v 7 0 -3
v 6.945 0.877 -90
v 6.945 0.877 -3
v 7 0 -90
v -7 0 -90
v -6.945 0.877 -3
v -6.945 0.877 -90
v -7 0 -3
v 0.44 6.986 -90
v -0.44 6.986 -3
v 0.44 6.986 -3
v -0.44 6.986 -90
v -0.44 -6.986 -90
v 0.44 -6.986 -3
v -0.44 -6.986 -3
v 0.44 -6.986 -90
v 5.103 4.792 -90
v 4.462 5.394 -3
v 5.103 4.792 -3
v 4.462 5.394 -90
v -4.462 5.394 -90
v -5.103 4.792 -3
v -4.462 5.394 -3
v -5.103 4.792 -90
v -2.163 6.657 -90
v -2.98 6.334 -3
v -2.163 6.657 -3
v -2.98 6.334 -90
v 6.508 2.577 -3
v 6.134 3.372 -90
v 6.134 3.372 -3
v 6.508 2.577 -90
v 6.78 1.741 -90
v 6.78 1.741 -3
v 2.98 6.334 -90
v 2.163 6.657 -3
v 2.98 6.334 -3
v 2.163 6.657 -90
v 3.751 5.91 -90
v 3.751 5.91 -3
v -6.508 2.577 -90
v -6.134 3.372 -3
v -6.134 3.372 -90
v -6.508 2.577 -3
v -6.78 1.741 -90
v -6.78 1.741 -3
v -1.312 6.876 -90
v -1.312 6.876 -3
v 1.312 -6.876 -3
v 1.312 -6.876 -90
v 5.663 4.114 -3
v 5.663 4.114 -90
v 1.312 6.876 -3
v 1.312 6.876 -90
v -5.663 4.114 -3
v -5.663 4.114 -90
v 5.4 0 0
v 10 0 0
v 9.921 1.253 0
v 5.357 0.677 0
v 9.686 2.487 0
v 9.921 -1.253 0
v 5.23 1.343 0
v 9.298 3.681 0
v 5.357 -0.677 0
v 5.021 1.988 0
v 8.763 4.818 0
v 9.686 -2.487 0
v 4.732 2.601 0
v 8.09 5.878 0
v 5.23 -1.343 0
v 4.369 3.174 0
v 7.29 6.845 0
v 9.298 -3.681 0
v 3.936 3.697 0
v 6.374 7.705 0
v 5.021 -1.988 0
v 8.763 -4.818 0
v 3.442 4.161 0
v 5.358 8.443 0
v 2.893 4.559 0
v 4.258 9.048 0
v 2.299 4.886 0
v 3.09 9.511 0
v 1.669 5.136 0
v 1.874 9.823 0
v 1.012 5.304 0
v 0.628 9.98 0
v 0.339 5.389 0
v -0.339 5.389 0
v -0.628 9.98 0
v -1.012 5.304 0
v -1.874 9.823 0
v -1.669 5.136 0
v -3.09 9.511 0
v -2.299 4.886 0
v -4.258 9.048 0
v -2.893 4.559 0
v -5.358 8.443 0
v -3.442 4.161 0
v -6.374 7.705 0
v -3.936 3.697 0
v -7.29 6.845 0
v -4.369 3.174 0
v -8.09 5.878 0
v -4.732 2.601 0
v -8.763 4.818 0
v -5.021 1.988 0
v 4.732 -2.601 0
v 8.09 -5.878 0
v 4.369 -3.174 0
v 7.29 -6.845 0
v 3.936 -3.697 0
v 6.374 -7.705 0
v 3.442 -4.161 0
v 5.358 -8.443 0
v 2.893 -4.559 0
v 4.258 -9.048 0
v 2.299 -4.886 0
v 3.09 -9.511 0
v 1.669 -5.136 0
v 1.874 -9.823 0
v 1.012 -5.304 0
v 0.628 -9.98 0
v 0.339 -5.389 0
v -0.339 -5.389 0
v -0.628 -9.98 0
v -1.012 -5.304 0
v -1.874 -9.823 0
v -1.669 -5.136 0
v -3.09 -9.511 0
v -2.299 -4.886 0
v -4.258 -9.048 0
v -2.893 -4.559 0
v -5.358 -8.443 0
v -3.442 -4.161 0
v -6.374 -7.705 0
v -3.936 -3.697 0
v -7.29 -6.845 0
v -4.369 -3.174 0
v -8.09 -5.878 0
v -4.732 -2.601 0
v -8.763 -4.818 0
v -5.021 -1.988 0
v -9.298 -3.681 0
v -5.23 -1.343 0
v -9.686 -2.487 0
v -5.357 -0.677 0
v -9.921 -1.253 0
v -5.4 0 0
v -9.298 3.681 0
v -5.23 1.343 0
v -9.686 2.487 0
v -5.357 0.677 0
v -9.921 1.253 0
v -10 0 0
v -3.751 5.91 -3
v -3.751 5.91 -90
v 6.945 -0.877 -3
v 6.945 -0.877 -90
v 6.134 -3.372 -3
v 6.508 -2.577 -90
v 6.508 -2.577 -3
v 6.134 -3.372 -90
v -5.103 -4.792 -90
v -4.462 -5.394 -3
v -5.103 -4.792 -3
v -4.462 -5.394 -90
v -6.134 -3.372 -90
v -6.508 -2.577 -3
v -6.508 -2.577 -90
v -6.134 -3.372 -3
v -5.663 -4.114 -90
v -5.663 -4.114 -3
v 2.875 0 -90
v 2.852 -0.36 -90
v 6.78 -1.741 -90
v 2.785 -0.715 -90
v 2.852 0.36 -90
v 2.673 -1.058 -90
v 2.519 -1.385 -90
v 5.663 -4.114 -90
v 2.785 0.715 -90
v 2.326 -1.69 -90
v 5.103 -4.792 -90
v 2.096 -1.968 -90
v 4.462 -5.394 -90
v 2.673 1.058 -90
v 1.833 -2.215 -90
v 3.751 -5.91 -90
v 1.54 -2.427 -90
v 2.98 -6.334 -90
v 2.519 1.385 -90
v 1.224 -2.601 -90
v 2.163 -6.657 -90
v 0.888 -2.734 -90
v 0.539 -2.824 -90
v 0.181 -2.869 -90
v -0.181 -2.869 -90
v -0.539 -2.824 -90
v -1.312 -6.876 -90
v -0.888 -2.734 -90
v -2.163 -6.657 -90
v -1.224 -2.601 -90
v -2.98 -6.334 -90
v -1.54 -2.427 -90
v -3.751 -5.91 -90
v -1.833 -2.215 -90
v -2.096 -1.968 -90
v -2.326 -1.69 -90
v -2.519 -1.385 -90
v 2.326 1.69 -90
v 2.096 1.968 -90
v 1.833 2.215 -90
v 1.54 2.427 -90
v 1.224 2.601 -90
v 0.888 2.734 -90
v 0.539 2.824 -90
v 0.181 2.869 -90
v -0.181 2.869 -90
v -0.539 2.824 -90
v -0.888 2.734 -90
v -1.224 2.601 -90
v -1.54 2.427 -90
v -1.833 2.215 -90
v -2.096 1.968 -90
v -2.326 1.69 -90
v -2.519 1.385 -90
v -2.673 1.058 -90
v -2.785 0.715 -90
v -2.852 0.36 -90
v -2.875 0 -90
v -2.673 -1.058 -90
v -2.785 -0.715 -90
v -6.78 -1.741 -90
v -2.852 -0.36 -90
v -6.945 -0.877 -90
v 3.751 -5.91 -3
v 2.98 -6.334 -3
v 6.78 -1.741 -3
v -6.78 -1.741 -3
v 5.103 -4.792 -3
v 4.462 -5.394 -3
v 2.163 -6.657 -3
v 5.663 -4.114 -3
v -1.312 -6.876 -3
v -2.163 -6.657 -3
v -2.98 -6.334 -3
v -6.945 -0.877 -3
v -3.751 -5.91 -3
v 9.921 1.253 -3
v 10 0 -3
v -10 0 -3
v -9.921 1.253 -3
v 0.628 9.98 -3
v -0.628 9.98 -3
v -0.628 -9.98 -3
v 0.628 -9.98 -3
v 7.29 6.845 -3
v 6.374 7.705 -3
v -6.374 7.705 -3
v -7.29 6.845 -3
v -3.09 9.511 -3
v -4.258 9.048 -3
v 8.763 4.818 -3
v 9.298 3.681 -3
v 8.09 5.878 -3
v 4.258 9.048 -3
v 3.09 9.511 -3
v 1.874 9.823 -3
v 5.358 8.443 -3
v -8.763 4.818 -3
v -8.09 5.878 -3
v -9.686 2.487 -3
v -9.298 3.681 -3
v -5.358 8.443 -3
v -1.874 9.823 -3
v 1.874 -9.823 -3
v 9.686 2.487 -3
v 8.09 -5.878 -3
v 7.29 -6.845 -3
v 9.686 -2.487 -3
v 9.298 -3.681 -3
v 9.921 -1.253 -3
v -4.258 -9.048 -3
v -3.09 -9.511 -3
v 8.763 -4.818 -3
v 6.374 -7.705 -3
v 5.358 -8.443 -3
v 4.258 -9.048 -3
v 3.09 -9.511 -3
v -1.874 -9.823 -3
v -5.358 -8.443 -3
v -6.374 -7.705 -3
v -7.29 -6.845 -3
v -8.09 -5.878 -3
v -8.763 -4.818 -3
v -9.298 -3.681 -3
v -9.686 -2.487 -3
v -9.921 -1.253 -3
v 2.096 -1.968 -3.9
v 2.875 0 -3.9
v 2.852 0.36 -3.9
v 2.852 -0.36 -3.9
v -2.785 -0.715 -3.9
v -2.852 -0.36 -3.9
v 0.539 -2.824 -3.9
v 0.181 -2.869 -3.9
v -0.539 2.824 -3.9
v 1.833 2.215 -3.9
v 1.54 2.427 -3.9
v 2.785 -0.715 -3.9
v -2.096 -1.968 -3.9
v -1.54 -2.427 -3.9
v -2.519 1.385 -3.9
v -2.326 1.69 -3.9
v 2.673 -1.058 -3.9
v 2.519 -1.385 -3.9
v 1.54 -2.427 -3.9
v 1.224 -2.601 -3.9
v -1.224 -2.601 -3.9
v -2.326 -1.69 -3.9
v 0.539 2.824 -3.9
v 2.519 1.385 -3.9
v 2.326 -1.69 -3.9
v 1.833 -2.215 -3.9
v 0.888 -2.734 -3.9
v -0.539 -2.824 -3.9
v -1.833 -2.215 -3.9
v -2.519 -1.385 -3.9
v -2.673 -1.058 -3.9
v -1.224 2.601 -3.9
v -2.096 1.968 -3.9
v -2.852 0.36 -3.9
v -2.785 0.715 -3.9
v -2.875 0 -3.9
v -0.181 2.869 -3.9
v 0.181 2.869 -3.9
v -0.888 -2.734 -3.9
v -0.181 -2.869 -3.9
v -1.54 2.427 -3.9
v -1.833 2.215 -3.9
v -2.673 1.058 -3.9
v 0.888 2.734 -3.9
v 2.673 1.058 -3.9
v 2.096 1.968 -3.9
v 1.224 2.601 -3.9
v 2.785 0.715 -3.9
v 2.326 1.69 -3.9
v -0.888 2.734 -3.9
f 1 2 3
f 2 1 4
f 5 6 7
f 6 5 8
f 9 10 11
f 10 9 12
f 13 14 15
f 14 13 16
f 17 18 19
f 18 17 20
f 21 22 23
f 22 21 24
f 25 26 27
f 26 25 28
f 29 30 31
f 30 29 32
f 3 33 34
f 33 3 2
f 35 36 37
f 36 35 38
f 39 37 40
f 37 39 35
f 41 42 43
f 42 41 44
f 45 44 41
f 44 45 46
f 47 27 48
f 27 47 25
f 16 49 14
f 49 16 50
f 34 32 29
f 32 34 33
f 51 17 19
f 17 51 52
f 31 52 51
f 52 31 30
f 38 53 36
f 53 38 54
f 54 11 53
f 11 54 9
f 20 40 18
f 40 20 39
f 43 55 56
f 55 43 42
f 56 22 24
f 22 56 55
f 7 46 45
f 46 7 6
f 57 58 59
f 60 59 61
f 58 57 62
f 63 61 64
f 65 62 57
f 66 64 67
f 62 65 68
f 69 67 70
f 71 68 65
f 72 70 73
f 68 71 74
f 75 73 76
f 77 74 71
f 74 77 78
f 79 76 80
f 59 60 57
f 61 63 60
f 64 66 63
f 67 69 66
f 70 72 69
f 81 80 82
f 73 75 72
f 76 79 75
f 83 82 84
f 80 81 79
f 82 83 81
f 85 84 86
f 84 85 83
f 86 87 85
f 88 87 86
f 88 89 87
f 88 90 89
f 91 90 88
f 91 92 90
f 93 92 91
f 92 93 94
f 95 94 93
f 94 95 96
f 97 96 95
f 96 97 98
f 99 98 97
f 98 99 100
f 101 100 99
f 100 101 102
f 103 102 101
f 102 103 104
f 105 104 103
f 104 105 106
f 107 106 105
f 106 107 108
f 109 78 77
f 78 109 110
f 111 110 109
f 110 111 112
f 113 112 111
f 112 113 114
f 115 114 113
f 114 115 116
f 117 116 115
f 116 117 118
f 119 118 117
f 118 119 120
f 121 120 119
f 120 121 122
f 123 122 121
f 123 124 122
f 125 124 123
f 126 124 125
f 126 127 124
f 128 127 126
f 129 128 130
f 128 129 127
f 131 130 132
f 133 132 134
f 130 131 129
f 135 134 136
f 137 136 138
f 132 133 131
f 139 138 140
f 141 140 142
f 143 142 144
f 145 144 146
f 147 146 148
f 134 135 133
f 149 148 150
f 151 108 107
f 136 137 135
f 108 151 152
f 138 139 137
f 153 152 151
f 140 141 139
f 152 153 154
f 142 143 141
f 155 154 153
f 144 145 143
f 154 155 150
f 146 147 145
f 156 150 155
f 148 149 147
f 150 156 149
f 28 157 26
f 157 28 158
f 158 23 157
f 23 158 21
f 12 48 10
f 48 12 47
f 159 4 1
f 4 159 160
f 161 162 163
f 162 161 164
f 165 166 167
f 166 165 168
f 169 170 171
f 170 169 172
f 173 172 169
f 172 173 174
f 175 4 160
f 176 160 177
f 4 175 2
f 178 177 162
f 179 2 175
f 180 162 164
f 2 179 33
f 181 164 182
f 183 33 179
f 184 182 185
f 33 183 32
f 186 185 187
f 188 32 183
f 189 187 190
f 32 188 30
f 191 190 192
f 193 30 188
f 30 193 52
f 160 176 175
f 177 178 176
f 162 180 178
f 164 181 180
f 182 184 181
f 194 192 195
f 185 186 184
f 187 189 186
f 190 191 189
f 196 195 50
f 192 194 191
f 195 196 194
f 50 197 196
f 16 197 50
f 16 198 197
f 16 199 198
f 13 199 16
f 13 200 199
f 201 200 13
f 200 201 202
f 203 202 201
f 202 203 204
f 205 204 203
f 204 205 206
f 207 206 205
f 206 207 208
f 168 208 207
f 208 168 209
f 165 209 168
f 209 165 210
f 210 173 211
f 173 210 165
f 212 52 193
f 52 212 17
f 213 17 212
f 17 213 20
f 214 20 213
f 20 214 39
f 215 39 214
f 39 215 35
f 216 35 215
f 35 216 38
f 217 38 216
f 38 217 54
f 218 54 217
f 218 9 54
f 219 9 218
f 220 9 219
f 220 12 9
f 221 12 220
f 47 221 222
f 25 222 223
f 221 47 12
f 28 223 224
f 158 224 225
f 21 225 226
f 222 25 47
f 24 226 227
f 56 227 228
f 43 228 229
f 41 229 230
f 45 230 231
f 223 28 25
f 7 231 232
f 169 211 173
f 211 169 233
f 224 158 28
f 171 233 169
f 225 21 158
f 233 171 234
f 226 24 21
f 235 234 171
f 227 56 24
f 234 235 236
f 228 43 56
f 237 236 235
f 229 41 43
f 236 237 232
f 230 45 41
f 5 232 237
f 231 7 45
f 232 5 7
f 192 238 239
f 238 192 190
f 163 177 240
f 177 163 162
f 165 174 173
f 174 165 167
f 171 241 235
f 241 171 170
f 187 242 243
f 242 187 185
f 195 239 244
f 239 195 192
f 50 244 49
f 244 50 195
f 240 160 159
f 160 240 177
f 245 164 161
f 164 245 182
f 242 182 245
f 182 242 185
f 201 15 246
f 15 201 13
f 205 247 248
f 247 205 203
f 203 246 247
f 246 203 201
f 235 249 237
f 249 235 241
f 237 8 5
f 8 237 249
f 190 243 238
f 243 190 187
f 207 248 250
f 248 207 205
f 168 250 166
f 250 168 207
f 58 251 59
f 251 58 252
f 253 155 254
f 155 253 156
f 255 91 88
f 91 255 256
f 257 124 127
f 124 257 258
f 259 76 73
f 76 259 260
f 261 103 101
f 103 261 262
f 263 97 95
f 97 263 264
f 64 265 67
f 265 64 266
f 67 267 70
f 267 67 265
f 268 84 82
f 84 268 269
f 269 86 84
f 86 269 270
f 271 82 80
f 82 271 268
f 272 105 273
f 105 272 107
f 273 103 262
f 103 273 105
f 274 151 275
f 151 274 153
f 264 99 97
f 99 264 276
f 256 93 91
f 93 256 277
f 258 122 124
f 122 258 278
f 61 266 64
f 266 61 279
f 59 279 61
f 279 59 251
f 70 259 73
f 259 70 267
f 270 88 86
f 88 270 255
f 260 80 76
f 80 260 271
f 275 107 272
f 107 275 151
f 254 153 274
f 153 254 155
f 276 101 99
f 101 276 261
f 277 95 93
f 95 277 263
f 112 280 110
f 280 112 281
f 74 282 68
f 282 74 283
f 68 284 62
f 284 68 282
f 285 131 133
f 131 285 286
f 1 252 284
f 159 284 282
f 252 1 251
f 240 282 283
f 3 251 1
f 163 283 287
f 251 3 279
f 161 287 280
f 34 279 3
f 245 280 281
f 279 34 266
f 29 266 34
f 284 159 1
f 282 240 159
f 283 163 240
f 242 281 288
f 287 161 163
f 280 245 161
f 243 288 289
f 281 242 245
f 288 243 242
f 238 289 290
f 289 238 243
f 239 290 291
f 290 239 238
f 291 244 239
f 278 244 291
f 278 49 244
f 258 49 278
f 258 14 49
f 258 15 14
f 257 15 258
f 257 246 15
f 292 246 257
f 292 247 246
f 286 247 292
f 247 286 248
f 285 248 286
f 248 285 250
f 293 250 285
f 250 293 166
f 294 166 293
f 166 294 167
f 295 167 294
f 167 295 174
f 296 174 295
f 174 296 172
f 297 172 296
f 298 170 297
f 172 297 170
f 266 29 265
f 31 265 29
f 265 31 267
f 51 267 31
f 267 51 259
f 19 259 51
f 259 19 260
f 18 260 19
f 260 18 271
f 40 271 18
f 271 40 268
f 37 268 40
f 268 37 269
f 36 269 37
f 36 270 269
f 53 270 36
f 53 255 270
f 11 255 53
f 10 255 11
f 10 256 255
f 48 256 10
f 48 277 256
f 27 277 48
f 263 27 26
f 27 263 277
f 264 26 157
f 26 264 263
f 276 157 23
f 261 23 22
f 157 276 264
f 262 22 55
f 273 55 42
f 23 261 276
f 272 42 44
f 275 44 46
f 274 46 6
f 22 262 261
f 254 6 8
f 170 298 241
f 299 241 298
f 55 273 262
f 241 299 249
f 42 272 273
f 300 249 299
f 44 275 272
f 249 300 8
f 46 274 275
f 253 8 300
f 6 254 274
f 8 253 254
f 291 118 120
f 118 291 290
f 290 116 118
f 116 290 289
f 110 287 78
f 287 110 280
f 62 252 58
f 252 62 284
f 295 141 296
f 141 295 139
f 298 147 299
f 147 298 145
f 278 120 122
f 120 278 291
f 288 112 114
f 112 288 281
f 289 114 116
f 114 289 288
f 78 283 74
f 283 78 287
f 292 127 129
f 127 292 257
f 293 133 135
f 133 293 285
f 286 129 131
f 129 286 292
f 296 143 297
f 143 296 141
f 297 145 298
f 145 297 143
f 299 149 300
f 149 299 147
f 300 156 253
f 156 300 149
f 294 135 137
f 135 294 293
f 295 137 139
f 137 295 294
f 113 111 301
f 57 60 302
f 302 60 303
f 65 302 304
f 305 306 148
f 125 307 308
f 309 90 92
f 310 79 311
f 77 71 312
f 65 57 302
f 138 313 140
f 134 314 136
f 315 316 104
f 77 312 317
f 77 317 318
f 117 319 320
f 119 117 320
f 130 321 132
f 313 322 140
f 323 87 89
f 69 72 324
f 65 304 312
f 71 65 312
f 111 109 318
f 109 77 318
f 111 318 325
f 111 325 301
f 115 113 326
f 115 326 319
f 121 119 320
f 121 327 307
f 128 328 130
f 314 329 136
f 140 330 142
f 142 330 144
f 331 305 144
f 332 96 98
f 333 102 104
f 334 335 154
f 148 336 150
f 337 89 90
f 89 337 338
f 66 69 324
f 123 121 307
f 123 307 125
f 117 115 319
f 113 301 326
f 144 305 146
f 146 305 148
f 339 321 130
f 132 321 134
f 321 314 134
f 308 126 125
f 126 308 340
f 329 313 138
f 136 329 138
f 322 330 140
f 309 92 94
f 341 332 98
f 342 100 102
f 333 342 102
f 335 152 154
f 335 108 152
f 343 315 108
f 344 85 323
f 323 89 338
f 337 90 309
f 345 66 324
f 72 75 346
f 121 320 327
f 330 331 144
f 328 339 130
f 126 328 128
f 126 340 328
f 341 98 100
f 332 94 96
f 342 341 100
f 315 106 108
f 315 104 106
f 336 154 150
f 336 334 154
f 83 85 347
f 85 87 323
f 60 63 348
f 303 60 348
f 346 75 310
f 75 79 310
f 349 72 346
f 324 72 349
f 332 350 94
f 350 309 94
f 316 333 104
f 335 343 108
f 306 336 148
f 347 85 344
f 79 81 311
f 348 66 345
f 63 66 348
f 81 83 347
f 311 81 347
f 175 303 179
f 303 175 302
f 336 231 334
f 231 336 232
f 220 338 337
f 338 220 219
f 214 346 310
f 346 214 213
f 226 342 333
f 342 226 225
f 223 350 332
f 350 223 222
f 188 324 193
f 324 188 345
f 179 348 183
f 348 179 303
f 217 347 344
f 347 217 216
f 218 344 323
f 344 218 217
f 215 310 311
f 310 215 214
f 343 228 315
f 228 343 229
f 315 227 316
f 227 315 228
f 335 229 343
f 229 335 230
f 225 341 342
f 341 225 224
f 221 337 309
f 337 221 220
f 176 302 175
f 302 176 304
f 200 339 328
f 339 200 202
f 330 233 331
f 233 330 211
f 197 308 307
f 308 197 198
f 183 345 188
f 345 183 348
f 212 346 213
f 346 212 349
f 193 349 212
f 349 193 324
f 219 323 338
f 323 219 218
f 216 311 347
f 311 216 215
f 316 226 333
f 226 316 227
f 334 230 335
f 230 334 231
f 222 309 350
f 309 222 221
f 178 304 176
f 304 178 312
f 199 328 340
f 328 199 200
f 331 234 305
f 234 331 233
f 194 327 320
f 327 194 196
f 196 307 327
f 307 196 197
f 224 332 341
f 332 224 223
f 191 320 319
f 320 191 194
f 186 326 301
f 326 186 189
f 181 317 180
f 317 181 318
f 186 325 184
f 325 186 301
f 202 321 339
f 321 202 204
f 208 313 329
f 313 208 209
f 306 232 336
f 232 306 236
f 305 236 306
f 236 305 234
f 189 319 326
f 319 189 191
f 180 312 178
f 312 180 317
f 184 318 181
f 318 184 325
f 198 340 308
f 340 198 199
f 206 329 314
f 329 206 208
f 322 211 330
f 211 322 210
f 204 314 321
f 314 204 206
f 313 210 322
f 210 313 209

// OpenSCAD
$fn = 50;


difference() {
	union() {
		translate(v = [0, 0, -90.0000000000]) {
			cylinder(h = 90, r = 7.0000000000);
		}
		translate(v = [0, 0, -3.0000000000]) {
			cylinder(h = 3, r = 10.0000000000);
		}
	}
	union() {
		translate(v = [0, 0, 0]) {
			rotate(a = [0, 0, 0]) {
				difference() {
					union() {
						#translate(v = [0, 0, -90.0000000000]) {
							cylinder(h = 90, r = 2.6000000000);
						}
						#translate(v = [0, 0, -3.9000000000]) {
							cylinder(h = 3.9000000000, r1 = 2.8750000000, r2 = 5.4000000000);
						}
						#translate(v = [0, 0, -90.0000000000]) {
							cylinder(h = 90, r = 2.8750000000);
						}
						#translate(v = [0, 0, -90.0000000000]) {
							cylinder(h = 90, r = 2.6000000000);
						}
					}
					union();
				}
			}
		}
	}
}
